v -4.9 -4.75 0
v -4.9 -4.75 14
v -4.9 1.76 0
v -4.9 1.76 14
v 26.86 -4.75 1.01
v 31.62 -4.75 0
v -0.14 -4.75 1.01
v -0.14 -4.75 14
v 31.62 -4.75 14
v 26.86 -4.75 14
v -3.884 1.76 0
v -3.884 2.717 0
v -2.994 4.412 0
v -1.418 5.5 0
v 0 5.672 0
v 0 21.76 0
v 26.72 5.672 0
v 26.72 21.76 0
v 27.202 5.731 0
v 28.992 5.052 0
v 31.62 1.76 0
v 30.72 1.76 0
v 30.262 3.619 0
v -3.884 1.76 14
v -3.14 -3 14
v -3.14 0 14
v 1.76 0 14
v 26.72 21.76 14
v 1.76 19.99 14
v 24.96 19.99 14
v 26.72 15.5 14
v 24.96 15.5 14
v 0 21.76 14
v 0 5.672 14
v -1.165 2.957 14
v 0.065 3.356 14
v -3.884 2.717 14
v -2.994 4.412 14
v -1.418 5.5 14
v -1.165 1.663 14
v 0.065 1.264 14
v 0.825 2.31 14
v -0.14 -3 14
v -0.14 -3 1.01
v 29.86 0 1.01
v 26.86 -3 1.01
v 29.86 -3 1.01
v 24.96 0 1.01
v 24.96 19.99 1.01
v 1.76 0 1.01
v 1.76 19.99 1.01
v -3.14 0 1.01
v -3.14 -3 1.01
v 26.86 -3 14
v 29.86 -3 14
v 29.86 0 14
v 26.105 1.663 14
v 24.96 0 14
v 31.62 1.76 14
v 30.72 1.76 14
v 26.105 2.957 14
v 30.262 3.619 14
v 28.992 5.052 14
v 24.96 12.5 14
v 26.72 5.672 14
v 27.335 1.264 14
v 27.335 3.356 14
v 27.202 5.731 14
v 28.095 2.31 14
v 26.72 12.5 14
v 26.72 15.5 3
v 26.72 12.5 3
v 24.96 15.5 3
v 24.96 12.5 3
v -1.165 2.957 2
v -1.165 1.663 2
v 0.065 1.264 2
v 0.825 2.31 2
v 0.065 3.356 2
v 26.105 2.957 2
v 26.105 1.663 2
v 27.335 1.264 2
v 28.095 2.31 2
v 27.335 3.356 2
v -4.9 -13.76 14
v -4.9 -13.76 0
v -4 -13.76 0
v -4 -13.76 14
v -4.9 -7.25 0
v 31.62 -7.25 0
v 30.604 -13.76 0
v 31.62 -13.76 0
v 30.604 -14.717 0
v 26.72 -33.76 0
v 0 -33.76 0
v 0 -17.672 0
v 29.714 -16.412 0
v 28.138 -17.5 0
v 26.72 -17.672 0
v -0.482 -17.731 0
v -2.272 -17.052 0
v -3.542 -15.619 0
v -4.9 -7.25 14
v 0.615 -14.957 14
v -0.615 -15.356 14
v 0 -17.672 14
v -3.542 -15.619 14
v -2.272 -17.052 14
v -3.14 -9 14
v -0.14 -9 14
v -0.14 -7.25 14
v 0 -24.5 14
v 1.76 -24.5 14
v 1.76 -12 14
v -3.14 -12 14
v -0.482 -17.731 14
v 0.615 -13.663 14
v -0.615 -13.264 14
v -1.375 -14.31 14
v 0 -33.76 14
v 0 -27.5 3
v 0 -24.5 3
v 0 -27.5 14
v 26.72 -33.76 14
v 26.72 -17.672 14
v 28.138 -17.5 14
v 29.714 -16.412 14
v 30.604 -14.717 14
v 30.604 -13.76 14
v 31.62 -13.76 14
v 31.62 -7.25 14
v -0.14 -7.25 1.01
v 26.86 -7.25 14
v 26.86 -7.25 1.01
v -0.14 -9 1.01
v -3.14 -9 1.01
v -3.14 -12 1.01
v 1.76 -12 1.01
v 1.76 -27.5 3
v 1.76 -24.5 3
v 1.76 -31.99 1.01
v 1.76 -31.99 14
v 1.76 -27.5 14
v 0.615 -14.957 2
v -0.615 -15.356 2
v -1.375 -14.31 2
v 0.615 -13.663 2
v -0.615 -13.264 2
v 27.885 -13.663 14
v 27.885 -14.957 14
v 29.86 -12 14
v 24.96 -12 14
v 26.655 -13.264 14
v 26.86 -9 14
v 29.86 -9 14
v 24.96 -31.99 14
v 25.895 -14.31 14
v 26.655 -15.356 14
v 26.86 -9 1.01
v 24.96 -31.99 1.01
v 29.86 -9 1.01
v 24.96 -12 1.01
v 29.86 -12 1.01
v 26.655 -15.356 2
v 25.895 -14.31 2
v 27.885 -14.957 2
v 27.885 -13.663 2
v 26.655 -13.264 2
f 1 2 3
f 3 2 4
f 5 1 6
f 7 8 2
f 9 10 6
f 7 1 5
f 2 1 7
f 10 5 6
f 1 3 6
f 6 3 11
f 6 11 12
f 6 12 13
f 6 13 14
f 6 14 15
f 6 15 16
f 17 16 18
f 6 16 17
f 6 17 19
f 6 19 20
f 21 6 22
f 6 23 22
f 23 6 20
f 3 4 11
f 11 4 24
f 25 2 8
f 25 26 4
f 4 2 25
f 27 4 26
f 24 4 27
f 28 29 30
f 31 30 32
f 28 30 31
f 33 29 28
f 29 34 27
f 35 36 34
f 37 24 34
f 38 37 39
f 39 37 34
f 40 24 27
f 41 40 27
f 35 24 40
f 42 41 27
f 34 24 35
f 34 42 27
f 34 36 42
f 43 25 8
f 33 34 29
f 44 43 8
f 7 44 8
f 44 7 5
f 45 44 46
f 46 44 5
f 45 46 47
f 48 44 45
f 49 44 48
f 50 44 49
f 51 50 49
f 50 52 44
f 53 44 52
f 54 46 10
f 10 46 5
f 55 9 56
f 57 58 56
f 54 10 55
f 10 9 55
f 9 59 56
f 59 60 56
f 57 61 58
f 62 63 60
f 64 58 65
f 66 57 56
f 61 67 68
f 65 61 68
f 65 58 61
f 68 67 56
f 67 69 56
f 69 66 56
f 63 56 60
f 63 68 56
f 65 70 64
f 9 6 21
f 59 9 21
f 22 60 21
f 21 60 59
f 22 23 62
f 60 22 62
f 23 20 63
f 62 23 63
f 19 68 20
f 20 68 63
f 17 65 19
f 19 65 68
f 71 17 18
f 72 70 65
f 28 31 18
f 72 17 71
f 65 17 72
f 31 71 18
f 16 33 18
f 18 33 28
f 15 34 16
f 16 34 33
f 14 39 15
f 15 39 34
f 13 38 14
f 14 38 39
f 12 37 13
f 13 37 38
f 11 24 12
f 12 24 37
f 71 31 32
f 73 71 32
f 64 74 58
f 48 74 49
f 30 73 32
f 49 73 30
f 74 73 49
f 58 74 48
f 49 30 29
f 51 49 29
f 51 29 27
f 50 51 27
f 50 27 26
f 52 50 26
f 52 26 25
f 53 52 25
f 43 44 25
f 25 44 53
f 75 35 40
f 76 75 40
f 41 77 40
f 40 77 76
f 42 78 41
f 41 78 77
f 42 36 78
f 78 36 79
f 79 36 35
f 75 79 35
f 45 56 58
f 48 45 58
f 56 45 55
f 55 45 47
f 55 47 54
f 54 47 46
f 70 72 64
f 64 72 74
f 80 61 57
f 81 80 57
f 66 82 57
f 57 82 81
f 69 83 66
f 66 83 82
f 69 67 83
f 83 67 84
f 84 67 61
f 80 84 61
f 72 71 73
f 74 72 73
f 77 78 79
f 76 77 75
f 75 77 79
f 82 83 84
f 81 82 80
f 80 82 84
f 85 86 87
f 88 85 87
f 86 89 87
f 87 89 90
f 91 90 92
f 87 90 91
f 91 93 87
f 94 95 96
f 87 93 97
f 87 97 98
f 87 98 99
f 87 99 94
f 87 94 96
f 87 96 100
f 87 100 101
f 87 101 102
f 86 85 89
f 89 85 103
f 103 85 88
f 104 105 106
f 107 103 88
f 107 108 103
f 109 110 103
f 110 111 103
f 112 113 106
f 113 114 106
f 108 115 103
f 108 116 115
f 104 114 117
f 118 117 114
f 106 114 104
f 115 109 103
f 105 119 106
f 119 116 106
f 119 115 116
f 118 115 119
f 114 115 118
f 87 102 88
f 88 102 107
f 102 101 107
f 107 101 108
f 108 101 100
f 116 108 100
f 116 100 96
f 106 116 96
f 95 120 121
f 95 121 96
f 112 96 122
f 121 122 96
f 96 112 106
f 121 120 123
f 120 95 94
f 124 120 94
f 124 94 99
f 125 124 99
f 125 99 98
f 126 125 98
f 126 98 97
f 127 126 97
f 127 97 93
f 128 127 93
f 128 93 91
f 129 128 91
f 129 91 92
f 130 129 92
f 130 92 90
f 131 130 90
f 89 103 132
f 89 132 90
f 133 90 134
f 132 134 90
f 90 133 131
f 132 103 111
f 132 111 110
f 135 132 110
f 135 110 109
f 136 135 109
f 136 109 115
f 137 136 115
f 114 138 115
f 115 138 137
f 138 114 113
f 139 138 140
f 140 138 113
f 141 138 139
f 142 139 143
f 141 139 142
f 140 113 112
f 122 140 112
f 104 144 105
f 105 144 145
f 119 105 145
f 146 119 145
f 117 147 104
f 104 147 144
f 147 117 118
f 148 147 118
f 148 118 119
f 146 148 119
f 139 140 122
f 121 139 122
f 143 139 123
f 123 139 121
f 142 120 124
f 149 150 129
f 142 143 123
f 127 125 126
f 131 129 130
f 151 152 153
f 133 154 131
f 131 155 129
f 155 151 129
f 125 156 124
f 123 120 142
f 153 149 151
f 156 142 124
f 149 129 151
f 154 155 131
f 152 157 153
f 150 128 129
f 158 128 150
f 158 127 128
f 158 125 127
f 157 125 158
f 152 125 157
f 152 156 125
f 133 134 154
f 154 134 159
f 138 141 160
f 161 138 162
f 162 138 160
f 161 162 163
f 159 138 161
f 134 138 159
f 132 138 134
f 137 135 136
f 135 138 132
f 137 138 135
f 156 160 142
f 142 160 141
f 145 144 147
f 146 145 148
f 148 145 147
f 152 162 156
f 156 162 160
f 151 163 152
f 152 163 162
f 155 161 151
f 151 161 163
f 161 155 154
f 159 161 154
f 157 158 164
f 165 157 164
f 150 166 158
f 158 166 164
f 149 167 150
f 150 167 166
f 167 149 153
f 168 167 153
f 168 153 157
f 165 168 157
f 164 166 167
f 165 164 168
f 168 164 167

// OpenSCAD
/*
 * Wing Servo Casing
 *
 * (C) Michel Pollet <buserror@gmail.com>
 *
 ************************LICENSING TERMS***************************
 * This part is not for commercial distribution without a commercial 
 * license acquired from the author. Distribution on a small scale 
 * basis (< 25 units) in the Reprap spirit is free of charge on the
 * basis of mentioning the Author with the bill of material, any 
 * wider distribution requires my explicit, written permission.
 ******************************************************************
 */
E=0.01;

servo_body_size = [ 23.2, 20, 13 ];
servo_head_size = [ 33, 3, 13 ];
servo_cable_position = 12.5;

bottom_thickness = 1;
wall_thickness = 0.44 * 4;
hole_r = 1.1;

servo_body_out = [ 
	servo_body_size[0] + (2 * wall_thickness),
	servo_body_size[1] + (1 * wall_thickness),
	servo_body_size[2] + bottom_thickness];
servo_head_out = [
	servo_head_size[0] + (2 * wall_thickness),
	servo_head_size[1] + (2 * wall_thickness)-E,
	servo_head_size[2] + bottom_thickness];

servo_holder();
translate([servo_body_out[0],-12,0])
rotate([0,0,180])
	servo_holder();

module servo_holder() {
	difference() {
		outside();
		inside();
	}
}

module outside() {
	
	cube(servo_body_out);
	translate([(servo_body_out[0]/2)-(servo_head_out[0]/2), 
			-servo_head_out[1]+wall_thickness, 0])
		cube(servo_head_out);
	
	translate([0, wall_thickness, 0])
		cylinder(r = 4, h = servo_body_out[2]);
	translate([servo_body_out[0], wall_thickness, 0])
		cylinder(r = 4, h = servo_body_out[2]);
}

module inside() {
	translate([wall_thickness, -E, bottom_thickness + E])
		cube(servo_body_size);
	translate([servo_body_size[0], servo_cable_position,  bottom_thickness * 3])
		cube([wall_thickness * 4, 3, servo_body_out[2]]);
	translate([(servo_body_out[0]/2)-(servo_head_size[0]/2),
				-servo_head_size[1],bottom_thickness+E]) {
		cube(servo_head_size);
		translate([3,-servo_head_size[1]+E,0])
			cube([servo_head_size[0]-6, servo_head_size[1], servo_head_size[2]]);
	}

	translate([-hole_r/4, wall_thickness+(hole_r/2), bottom_thickness*2])
		cylinder(r = hole_r, h = servo_body_out[2]);
	translate([servo_body_out[0]+(hole_r/4), wall_thickness+(hole_r/2), bottom_thickness*2])
		cylinder(r = hole_r, h = servo_body_out[2]);

}
